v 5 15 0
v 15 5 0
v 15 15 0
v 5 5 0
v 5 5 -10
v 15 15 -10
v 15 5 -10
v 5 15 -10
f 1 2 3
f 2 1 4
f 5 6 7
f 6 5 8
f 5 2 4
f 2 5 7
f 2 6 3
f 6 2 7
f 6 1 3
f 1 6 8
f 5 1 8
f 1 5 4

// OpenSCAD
// Define the cube dimensions
cube_size = 10; // Adjust the size as needed

// Adjustments based on differences_list
translate([5, 5, -10]) // Lower the cube’s position along the vertical axis to match the original model
rotate([0, 0, 0])      // Ensure the cube is not tilted or rotated, aligning all faces parallel to the axes
cube([cube_size, cube_size, cube_size]);
